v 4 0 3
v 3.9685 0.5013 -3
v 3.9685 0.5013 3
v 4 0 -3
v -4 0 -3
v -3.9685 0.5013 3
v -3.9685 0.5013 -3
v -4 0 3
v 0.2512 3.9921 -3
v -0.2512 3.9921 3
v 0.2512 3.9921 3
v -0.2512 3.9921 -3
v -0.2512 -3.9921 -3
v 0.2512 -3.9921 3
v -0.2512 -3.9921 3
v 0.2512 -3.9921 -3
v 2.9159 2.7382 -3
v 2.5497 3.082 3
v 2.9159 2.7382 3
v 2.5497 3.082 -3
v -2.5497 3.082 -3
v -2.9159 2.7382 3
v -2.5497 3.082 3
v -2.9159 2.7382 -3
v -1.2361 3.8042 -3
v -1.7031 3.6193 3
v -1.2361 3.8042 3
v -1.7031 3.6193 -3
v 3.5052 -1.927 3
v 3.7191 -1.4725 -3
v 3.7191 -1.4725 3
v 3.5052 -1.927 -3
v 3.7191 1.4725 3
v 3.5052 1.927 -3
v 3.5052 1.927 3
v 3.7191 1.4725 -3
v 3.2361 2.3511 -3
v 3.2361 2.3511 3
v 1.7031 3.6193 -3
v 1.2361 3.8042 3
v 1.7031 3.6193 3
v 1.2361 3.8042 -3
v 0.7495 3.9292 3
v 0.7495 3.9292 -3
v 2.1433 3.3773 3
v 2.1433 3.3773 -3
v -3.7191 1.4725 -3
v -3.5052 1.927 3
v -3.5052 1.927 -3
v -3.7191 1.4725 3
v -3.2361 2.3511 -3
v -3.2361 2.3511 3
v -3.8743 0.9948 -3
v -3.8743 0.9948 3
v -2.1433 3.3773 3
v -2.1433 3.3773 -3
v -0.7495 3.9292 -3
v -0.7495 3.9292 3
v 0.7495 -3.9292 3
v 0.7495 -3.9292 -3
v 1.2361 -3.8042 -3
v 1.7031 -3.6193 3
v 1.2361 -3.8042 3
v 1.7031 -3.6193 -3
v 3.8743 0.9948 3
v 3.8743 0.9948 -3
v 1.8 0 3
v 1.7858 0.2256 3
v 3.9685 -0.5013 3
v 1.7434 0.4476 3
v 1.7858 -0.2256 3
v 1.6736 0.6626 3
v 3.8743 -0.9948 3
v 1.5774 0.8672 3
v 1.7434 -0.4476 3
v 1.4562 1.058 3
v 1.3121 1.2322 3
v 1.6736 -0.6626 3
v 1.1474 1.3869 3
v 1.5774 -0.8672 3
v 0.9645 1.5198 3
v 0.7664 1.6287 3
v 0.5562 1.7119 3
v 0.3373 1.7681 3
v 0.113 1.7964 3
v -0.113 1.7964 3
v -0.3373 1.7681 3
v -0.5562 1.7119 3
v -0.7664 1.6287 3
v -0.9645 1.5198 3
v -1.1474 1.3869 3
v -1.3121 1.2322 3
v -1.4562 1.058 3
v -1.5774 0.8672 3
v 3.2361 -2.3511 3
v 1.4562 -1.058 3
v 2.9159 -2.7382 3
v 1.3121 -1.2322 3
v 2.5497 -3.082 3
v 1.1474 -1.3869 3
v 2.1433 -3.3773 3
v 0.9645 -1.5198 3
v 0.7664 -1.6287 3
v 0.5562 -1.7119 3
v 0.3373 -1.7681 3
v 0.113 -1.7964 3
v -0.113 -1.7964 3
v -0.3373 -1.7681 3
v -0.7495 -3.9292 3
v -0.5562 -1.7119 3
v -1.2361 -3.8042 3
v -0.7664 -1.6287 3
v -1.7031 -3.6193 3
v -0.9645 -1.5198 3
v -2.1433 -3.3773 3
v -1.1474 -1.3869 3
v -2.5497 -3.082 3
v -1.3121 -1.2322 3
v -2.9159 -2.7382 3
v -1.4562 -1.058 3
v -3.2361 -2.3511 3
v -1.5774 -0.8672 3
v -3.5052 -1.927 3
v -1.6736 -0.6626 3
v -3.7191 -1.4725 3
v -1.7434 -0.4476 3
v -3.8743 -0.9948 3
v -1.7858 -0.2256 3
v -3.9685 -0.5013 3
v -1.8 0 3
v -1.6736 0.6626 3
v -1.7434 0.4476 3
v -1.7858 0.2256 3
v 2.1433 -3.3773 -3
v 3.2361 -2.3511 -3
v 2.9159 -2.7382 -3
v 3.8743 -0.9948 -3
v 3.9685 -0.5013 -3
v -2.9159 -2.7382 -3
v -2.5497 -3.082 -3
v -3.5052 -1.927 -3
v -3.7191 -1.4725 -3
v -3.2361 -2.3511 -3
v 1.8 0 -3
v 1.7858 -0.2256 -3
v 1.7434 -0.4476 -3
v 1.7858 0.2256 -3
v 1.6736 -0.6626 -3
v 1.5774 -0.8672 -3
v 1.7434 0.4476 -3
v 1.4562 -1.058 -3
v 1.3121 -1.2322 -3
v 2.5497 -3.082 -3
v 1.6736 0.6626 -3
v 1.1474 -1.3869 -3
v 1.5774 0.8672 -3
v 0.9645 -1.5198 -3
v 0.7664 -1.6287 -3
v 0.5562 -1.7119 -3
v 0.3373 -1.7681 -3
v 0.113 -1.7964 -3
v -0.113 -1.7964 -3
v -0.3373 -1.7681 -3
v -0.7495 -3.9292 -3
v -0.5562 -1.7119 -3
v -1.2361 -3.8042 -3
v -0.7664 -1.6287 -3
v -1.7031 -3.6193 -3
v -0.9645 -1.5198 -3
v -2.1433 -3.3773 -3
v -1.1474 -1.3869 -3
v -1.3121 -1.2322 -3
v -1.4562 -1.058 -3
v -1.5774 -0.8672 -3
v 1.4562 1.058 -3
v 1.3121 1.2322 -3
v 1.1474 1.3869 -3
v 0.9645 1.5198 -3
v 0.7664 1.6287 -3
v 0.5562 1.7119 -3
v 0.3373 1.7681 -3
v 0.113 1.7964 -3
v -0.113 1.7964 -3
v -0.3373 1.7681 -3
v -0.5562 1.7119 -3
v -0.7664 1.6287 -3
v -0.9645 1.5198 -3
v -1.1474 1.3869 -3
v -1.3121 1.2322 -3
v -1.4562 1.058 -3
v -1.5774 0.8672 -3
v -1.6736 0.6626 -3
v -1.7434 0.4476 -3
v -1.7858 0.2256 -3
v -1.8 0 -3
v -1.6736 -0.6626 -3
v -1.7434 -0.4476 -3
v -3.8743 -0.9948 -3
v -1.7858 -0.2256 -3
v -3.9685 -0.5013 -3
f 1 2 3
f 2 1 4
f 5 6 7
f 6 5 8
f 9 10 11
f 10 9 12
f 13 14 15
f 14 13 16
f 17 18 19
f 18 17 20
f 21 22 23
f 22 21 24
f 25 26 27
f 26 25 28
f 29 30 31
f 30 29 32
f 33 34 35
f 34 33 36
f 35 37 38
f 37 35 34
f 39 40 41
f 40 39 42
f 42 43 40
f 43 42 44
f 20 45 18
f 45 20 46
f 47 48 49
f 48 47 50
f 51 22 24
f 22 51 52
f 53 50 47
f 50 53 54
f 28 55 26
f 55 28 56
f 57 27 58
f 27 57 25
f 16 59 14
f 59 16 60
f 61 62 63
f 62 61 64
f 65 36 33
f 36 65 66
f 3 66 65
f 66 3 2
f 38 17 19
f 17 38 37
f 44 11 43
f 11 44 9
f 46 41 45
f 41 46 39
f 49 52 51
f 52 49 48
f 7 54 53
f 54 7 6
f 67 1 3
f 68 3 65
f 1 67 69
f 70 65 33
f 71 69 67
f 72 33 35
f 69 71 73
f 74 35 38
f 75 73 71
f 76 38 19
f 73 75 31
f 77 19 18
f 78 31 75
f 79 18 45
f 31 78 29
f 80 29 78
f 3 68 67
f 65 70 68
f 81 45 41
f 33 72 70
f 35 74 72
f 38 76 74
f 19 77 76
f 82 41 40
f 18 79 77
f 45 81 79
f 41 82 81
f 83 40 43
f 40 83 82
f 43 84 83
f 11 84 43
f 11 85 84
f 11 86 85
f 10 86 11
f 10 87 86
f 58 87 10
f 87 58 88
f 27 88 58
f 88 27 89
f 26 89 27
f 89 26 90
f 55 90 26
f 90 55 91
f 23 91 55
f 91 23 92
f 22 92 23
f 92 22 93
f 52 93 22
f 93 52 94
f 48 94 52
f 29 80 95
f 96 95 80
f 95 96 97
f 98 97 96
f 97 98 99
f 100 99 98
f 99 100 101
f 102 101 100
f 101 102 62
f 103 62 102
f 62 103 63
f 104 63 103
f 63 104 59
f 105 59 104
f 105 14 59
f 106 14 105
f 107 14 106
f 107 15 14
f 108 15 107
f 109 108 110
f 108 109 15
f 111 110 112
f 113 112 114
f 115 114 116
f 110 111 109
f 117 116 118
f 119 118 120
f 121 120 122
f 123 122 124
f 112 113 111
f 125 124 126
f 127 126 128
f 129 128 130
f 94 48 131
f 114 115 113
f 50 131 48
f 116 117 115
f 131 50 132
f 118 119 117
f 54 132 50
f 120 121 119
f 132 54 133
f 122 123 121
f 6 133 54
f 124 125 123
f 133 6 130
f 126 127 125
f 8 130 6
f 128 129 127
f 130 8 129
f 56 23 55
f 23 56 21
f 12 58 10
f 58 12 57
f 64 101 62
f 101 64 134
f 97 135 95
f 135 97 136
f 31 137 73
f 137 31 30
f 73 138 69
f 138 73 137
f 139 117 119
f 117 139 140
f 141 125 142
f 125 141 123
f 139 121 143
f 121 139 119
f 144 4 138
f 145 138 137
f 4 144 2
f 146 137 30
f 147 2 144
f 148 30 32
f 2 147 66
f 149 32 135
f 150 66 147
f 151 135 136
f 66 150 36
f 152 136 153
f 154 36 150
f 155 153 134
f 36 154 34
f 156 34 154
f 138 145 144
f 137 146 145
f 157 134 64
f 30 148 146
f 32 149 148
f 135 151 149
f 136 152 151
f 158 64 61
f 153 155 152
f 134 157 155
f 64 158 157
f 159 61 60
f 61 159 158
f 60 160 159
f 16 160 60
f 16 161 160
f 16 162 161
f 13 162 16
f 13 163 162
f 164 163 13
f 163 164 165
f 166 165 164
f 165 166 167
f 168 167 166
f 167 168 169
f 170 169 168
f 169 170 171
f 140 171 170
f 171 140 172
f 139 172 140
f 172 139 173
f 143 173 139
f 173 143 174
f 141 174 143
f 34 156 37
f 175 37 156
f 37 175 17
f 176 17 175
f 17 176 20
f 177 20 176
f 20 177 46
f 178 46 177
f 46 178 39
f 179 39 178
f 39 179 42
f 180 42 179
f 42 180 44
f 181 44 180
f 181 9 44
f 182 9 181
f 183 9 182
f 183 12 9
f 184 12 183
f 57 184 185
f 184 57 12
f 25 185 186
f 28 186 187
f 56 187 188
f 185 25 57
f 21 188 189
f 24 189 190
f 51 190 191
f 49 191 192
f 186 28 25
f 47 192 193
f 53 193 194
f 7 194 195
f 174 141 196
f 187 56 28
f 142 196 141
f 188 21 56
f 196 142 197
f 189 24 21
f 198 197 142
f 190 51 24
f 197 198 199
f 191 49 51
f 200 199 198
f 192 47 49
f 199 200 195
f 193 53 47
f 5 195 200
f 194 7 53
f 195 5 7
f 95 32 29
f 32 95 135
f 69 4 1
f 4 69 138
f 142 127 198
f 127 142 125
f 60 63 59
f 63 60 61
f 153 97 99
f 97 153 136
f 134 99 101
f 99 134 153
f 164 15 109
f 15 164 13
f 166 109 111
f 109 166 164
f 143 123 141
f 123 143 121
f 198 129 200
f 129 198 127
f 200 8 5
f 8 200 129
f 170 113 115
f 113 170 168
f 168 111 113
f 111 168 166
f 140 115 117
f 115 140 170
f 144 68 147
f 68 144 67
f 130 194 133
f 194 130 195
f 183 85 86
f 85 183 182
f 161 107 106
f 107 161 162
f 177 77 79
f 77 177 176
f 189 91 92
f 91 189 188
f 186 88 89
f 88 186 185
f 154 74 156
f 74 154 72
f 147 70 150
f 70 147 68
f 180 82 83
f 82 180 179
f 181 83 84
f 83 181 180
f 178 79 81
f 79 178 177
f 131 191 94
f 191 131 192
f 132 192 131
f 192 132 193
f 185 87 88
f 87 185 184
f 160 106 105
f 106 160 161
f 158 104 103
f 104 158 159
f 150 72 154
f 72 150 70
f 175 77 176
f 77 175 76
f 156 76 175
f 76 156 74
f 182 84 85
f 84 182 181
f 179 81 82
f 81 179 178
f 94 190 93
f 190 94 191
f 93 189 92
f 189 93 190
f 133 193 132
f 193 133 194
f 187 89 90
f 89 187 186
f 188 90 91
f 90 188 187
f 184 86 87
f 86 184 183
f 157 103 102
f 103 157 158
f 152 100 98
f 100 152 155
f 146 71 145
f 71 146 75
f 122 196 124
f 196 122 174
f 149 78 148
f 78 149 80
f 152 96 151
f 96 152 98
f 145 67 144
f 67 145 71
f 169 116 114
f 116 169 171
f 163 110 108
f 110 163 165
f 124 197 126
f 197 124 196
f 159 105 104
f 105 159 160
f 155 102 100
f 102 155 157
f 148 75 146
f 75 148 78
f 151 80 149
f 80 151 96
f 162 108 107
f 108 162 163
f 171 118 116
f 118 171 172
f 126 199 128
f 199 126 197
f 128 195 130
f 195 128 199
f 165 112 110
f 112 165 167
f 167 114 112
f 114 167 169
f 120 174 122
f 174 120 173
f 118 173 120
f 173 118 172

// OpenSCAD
$fn = 50;


difference() {
	union() {
		translate(v = [0, 0, -3.0000000000]) {
			cylinder(h = 6, r = 4.0000000000);
		}
	}
	union() {
		translate(v = [0, 0, -100.0000000000]) {
			cylinder(h = 200, r = 1.8000000000);
		}
	}
}
